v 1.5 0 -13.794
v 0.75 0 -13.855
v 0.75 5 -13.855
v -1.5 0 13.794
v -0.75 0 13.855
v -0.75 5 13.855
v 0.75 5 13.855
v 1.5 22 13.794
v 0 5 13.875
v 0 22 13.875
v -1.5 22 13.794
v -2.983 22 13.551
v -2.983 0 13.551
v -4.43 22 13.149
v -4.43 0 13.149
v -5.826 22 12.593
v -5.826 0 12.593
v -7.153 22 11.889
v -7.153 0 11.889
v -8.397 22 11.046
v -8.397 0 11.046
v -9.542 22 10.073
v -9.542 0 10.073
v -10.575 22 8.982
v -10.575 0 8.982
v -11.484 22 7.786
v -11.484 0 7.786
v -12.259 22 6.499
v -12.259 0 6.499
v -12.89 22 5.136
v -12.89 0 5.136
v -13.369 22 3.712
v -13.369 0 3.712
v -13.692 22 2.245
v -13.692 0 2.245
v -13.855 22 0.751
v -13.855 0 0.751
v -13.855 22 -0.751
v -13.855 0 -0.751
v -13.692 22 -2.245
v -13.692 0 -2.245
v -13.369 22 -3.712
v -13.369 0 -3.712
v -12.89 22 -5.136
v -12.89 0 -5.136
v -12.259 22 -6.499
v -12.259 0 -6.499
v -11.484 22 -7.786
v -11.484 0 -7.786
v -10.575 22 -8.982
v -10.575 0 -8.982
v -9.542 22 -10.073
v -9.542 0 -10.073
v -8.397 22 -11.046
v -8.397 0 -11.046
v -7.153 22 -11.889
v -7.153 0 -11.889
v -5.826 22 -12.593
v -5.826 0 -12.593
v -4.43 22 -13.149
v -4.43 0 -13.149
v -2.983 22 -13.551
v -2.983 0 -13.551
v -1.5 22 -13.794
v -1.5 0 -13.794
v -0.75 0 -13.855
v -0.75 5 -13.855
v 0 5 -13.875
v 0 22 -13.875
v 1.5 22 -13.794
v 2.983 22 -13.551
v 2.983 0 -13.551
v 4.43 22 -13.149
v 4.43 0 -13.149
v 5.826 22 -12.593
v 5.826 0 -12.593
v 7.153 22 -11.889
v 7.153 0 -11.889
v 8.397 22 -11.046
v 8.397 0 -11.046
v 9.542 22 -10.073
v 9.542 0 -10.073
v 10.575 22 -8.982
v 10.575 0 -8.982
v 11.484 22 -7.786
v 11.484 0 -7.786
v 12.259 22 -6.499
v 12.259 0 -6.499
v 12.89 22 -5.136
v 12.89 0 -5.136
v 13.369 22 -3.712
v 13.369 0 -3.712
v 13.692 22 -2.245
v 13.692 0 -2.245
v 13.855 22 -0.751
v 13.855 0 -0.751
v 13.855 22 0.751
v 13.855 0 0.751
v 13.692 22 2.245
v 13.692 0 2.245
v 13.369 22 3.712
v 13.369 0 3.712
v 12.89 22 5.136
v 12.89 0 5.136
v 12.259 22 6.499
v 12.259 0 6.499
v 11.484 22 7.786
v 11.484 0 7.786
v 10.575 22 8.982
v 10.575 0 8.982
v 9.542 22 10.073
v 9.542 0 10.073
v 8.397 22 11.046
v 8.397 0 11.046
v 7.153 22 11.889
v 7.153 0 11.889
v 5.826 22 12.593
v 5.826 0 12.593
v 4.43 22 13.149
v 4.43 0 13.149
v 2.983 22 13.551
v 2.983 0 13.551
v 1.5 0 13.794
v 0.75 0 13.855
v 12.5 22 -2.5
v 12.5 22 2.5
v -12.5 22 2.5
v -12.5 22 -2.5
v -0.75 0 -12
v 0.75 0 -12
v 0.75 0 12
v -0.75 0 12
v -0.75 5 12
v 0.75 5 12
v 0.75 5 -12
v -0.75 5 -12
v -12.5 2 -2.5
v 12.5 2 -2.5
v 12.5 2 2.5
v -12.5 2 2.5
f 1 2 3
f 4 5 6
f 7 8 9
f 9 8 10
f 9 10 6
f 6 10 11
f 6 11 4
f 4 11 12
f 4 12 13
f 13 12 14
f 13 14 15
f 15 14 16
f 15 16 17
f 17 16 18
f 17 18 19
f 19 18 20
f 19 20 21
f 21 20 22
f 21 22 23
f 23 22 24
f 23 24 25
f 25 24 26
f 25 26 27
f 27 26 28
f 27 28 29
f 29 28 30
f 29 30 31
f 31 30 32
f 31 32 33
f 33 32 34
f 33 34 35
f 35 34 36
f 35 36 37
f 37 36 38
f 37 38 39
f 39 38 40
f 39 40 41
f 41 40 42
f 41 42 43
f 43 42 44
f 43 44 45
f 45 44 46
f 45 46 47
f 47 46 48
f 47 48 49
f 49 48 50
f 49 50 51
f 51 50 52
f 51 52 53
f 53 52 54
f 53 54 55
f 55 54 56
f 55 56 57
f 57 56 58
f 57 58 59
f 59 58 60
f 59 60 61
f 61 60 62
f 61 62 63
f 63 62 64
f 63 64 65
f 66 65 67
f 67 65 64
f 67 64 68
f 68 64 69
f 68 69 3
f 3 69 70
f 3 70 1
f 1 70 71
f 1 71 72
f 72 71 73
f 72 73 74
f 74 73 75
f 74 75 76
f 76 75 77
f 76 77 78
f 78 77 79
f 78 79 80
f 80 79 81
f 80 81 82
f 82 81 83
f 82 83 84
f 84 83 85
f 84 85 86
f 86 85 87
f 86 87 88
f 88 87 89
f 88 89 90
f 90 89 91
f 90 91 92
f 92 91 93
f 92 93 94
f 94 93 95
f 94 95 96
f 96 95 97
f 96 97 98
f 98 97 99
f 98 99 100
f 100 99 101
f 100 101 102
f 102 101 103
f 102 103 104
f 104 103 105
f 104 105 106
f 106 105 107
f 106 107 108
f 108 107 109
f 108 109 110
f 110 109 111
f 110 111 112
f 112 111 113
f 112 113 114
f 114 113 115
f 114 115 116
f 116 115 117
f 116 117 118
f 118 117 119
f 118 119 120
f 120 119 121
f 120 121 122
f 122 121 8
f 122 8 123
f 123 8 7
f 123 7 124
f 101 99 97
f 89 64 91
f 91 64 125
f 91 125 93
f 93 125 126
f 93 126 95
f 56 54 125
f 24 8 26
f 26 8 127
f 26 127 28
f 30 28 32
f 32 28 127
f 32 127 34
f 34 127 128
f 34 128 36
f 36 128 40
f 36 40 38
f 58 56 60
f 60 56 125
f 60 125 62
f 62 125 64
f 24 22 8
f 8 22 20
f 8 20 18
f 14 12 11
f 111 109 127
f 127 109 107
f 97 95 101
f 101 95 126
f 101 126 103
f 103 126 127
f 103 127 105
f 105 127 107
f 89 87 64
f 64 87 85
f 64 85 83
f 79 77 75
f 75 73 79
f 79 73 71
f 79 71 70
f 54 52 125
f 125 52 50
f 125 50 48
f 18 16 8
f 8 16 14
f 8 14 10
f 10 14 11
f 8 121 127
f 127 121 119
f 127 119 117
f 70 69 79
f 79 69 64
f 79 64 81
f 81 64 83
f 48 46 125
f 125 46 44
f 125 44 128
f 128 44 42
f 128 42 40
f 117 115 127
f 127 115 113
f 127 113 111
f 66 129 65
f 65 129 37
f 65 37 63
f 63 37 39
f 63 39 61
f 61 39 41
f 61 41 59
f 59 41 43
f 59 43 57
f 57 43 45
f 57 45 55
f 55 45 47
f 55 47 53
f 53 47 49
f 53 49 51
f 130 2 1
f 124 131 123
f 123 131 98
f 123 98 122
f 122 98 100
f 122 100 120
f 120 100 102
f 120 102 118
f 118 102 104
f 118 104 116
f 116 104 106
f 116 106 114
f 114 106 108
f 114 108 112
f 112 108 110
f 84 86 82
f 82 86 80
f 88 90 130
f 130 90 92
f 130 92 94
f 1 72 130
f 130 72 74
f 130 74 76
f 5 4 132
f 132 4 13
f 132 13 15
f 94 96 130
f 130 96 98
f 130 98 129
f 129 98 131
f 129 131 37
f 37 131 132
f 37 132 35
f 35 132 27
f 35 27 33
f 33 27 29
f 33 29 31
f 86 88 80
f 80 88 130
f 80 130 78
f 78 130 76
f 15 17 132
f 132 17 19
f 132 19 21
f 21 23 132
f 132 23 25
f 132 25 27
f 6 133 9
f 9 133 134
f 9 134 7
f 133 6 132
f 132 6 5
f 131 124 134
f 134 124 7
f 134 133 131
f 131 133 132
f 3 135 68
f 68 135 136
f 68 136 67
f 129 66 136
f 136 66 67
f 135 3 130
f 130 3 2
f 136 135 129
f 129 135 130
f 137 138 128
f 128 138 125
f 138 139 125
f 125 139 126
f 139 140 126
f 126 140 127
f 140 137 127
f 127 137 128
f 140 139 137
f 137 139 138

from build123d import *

# Parameters (mm, degrees)
SKETCH1_R           = 13.875
BOSS_EXTRUDE1_DEPTH = 22
SKETCH2_W           = 1.5
SKETCH2_H           = 2.924695476
SKETCH2_H_2         = 4.466803309
CUT_EXTRUDE1_DEPTH  = 5
SKETCH3_W           = 25
SKETCH3_H           = 5
CUT_EXTRUDE2_DEPTH  = 20


with BuildPart() as part:
    # Sketch1 → Boss-Extrude1 (new body)
    with BuildSketch(Plane(origin=(0, 0, 0), x_dir=(1, 0, 0), z_dir=(0, 1, 0))):
        with Locations(Location((0, 0, 0), (0, 0, 270))):
            Circle(SKETCH1_R)
    extrude(amount=BOSS_EXTRUDE1_DEPTH)

    # Sketch2 → Cut-Extrude1 (cut)
    with BuildSketch(Plane.XZ):
        with Locations((0, 13.462347738)):
            Rectangle(SKETCH2_W, SKETCH2_H)
        with Locations((0, -14.233401654)):
            Rectangle(SKETCH2_W, SKETCH2_H_2)
    extrude(amount=-CUT_EXTRUDE1_DEPTH, mode=Mode.SUBTRACT)

    # Sketch3 → Cut-Extrude2 (cut)
    with BuildSketch(Plane(origin=(0, 22, 0), x_dir=(1, 0, 0), z_dir=(0, 1, 0))):
        Rectangle(SKETCH3_W, SKETCH3_H)
    extrude(amount=-CUT_EXTRUDE2_DEPTH, mode=Mode.SUBTRACT)


solid = part.part
